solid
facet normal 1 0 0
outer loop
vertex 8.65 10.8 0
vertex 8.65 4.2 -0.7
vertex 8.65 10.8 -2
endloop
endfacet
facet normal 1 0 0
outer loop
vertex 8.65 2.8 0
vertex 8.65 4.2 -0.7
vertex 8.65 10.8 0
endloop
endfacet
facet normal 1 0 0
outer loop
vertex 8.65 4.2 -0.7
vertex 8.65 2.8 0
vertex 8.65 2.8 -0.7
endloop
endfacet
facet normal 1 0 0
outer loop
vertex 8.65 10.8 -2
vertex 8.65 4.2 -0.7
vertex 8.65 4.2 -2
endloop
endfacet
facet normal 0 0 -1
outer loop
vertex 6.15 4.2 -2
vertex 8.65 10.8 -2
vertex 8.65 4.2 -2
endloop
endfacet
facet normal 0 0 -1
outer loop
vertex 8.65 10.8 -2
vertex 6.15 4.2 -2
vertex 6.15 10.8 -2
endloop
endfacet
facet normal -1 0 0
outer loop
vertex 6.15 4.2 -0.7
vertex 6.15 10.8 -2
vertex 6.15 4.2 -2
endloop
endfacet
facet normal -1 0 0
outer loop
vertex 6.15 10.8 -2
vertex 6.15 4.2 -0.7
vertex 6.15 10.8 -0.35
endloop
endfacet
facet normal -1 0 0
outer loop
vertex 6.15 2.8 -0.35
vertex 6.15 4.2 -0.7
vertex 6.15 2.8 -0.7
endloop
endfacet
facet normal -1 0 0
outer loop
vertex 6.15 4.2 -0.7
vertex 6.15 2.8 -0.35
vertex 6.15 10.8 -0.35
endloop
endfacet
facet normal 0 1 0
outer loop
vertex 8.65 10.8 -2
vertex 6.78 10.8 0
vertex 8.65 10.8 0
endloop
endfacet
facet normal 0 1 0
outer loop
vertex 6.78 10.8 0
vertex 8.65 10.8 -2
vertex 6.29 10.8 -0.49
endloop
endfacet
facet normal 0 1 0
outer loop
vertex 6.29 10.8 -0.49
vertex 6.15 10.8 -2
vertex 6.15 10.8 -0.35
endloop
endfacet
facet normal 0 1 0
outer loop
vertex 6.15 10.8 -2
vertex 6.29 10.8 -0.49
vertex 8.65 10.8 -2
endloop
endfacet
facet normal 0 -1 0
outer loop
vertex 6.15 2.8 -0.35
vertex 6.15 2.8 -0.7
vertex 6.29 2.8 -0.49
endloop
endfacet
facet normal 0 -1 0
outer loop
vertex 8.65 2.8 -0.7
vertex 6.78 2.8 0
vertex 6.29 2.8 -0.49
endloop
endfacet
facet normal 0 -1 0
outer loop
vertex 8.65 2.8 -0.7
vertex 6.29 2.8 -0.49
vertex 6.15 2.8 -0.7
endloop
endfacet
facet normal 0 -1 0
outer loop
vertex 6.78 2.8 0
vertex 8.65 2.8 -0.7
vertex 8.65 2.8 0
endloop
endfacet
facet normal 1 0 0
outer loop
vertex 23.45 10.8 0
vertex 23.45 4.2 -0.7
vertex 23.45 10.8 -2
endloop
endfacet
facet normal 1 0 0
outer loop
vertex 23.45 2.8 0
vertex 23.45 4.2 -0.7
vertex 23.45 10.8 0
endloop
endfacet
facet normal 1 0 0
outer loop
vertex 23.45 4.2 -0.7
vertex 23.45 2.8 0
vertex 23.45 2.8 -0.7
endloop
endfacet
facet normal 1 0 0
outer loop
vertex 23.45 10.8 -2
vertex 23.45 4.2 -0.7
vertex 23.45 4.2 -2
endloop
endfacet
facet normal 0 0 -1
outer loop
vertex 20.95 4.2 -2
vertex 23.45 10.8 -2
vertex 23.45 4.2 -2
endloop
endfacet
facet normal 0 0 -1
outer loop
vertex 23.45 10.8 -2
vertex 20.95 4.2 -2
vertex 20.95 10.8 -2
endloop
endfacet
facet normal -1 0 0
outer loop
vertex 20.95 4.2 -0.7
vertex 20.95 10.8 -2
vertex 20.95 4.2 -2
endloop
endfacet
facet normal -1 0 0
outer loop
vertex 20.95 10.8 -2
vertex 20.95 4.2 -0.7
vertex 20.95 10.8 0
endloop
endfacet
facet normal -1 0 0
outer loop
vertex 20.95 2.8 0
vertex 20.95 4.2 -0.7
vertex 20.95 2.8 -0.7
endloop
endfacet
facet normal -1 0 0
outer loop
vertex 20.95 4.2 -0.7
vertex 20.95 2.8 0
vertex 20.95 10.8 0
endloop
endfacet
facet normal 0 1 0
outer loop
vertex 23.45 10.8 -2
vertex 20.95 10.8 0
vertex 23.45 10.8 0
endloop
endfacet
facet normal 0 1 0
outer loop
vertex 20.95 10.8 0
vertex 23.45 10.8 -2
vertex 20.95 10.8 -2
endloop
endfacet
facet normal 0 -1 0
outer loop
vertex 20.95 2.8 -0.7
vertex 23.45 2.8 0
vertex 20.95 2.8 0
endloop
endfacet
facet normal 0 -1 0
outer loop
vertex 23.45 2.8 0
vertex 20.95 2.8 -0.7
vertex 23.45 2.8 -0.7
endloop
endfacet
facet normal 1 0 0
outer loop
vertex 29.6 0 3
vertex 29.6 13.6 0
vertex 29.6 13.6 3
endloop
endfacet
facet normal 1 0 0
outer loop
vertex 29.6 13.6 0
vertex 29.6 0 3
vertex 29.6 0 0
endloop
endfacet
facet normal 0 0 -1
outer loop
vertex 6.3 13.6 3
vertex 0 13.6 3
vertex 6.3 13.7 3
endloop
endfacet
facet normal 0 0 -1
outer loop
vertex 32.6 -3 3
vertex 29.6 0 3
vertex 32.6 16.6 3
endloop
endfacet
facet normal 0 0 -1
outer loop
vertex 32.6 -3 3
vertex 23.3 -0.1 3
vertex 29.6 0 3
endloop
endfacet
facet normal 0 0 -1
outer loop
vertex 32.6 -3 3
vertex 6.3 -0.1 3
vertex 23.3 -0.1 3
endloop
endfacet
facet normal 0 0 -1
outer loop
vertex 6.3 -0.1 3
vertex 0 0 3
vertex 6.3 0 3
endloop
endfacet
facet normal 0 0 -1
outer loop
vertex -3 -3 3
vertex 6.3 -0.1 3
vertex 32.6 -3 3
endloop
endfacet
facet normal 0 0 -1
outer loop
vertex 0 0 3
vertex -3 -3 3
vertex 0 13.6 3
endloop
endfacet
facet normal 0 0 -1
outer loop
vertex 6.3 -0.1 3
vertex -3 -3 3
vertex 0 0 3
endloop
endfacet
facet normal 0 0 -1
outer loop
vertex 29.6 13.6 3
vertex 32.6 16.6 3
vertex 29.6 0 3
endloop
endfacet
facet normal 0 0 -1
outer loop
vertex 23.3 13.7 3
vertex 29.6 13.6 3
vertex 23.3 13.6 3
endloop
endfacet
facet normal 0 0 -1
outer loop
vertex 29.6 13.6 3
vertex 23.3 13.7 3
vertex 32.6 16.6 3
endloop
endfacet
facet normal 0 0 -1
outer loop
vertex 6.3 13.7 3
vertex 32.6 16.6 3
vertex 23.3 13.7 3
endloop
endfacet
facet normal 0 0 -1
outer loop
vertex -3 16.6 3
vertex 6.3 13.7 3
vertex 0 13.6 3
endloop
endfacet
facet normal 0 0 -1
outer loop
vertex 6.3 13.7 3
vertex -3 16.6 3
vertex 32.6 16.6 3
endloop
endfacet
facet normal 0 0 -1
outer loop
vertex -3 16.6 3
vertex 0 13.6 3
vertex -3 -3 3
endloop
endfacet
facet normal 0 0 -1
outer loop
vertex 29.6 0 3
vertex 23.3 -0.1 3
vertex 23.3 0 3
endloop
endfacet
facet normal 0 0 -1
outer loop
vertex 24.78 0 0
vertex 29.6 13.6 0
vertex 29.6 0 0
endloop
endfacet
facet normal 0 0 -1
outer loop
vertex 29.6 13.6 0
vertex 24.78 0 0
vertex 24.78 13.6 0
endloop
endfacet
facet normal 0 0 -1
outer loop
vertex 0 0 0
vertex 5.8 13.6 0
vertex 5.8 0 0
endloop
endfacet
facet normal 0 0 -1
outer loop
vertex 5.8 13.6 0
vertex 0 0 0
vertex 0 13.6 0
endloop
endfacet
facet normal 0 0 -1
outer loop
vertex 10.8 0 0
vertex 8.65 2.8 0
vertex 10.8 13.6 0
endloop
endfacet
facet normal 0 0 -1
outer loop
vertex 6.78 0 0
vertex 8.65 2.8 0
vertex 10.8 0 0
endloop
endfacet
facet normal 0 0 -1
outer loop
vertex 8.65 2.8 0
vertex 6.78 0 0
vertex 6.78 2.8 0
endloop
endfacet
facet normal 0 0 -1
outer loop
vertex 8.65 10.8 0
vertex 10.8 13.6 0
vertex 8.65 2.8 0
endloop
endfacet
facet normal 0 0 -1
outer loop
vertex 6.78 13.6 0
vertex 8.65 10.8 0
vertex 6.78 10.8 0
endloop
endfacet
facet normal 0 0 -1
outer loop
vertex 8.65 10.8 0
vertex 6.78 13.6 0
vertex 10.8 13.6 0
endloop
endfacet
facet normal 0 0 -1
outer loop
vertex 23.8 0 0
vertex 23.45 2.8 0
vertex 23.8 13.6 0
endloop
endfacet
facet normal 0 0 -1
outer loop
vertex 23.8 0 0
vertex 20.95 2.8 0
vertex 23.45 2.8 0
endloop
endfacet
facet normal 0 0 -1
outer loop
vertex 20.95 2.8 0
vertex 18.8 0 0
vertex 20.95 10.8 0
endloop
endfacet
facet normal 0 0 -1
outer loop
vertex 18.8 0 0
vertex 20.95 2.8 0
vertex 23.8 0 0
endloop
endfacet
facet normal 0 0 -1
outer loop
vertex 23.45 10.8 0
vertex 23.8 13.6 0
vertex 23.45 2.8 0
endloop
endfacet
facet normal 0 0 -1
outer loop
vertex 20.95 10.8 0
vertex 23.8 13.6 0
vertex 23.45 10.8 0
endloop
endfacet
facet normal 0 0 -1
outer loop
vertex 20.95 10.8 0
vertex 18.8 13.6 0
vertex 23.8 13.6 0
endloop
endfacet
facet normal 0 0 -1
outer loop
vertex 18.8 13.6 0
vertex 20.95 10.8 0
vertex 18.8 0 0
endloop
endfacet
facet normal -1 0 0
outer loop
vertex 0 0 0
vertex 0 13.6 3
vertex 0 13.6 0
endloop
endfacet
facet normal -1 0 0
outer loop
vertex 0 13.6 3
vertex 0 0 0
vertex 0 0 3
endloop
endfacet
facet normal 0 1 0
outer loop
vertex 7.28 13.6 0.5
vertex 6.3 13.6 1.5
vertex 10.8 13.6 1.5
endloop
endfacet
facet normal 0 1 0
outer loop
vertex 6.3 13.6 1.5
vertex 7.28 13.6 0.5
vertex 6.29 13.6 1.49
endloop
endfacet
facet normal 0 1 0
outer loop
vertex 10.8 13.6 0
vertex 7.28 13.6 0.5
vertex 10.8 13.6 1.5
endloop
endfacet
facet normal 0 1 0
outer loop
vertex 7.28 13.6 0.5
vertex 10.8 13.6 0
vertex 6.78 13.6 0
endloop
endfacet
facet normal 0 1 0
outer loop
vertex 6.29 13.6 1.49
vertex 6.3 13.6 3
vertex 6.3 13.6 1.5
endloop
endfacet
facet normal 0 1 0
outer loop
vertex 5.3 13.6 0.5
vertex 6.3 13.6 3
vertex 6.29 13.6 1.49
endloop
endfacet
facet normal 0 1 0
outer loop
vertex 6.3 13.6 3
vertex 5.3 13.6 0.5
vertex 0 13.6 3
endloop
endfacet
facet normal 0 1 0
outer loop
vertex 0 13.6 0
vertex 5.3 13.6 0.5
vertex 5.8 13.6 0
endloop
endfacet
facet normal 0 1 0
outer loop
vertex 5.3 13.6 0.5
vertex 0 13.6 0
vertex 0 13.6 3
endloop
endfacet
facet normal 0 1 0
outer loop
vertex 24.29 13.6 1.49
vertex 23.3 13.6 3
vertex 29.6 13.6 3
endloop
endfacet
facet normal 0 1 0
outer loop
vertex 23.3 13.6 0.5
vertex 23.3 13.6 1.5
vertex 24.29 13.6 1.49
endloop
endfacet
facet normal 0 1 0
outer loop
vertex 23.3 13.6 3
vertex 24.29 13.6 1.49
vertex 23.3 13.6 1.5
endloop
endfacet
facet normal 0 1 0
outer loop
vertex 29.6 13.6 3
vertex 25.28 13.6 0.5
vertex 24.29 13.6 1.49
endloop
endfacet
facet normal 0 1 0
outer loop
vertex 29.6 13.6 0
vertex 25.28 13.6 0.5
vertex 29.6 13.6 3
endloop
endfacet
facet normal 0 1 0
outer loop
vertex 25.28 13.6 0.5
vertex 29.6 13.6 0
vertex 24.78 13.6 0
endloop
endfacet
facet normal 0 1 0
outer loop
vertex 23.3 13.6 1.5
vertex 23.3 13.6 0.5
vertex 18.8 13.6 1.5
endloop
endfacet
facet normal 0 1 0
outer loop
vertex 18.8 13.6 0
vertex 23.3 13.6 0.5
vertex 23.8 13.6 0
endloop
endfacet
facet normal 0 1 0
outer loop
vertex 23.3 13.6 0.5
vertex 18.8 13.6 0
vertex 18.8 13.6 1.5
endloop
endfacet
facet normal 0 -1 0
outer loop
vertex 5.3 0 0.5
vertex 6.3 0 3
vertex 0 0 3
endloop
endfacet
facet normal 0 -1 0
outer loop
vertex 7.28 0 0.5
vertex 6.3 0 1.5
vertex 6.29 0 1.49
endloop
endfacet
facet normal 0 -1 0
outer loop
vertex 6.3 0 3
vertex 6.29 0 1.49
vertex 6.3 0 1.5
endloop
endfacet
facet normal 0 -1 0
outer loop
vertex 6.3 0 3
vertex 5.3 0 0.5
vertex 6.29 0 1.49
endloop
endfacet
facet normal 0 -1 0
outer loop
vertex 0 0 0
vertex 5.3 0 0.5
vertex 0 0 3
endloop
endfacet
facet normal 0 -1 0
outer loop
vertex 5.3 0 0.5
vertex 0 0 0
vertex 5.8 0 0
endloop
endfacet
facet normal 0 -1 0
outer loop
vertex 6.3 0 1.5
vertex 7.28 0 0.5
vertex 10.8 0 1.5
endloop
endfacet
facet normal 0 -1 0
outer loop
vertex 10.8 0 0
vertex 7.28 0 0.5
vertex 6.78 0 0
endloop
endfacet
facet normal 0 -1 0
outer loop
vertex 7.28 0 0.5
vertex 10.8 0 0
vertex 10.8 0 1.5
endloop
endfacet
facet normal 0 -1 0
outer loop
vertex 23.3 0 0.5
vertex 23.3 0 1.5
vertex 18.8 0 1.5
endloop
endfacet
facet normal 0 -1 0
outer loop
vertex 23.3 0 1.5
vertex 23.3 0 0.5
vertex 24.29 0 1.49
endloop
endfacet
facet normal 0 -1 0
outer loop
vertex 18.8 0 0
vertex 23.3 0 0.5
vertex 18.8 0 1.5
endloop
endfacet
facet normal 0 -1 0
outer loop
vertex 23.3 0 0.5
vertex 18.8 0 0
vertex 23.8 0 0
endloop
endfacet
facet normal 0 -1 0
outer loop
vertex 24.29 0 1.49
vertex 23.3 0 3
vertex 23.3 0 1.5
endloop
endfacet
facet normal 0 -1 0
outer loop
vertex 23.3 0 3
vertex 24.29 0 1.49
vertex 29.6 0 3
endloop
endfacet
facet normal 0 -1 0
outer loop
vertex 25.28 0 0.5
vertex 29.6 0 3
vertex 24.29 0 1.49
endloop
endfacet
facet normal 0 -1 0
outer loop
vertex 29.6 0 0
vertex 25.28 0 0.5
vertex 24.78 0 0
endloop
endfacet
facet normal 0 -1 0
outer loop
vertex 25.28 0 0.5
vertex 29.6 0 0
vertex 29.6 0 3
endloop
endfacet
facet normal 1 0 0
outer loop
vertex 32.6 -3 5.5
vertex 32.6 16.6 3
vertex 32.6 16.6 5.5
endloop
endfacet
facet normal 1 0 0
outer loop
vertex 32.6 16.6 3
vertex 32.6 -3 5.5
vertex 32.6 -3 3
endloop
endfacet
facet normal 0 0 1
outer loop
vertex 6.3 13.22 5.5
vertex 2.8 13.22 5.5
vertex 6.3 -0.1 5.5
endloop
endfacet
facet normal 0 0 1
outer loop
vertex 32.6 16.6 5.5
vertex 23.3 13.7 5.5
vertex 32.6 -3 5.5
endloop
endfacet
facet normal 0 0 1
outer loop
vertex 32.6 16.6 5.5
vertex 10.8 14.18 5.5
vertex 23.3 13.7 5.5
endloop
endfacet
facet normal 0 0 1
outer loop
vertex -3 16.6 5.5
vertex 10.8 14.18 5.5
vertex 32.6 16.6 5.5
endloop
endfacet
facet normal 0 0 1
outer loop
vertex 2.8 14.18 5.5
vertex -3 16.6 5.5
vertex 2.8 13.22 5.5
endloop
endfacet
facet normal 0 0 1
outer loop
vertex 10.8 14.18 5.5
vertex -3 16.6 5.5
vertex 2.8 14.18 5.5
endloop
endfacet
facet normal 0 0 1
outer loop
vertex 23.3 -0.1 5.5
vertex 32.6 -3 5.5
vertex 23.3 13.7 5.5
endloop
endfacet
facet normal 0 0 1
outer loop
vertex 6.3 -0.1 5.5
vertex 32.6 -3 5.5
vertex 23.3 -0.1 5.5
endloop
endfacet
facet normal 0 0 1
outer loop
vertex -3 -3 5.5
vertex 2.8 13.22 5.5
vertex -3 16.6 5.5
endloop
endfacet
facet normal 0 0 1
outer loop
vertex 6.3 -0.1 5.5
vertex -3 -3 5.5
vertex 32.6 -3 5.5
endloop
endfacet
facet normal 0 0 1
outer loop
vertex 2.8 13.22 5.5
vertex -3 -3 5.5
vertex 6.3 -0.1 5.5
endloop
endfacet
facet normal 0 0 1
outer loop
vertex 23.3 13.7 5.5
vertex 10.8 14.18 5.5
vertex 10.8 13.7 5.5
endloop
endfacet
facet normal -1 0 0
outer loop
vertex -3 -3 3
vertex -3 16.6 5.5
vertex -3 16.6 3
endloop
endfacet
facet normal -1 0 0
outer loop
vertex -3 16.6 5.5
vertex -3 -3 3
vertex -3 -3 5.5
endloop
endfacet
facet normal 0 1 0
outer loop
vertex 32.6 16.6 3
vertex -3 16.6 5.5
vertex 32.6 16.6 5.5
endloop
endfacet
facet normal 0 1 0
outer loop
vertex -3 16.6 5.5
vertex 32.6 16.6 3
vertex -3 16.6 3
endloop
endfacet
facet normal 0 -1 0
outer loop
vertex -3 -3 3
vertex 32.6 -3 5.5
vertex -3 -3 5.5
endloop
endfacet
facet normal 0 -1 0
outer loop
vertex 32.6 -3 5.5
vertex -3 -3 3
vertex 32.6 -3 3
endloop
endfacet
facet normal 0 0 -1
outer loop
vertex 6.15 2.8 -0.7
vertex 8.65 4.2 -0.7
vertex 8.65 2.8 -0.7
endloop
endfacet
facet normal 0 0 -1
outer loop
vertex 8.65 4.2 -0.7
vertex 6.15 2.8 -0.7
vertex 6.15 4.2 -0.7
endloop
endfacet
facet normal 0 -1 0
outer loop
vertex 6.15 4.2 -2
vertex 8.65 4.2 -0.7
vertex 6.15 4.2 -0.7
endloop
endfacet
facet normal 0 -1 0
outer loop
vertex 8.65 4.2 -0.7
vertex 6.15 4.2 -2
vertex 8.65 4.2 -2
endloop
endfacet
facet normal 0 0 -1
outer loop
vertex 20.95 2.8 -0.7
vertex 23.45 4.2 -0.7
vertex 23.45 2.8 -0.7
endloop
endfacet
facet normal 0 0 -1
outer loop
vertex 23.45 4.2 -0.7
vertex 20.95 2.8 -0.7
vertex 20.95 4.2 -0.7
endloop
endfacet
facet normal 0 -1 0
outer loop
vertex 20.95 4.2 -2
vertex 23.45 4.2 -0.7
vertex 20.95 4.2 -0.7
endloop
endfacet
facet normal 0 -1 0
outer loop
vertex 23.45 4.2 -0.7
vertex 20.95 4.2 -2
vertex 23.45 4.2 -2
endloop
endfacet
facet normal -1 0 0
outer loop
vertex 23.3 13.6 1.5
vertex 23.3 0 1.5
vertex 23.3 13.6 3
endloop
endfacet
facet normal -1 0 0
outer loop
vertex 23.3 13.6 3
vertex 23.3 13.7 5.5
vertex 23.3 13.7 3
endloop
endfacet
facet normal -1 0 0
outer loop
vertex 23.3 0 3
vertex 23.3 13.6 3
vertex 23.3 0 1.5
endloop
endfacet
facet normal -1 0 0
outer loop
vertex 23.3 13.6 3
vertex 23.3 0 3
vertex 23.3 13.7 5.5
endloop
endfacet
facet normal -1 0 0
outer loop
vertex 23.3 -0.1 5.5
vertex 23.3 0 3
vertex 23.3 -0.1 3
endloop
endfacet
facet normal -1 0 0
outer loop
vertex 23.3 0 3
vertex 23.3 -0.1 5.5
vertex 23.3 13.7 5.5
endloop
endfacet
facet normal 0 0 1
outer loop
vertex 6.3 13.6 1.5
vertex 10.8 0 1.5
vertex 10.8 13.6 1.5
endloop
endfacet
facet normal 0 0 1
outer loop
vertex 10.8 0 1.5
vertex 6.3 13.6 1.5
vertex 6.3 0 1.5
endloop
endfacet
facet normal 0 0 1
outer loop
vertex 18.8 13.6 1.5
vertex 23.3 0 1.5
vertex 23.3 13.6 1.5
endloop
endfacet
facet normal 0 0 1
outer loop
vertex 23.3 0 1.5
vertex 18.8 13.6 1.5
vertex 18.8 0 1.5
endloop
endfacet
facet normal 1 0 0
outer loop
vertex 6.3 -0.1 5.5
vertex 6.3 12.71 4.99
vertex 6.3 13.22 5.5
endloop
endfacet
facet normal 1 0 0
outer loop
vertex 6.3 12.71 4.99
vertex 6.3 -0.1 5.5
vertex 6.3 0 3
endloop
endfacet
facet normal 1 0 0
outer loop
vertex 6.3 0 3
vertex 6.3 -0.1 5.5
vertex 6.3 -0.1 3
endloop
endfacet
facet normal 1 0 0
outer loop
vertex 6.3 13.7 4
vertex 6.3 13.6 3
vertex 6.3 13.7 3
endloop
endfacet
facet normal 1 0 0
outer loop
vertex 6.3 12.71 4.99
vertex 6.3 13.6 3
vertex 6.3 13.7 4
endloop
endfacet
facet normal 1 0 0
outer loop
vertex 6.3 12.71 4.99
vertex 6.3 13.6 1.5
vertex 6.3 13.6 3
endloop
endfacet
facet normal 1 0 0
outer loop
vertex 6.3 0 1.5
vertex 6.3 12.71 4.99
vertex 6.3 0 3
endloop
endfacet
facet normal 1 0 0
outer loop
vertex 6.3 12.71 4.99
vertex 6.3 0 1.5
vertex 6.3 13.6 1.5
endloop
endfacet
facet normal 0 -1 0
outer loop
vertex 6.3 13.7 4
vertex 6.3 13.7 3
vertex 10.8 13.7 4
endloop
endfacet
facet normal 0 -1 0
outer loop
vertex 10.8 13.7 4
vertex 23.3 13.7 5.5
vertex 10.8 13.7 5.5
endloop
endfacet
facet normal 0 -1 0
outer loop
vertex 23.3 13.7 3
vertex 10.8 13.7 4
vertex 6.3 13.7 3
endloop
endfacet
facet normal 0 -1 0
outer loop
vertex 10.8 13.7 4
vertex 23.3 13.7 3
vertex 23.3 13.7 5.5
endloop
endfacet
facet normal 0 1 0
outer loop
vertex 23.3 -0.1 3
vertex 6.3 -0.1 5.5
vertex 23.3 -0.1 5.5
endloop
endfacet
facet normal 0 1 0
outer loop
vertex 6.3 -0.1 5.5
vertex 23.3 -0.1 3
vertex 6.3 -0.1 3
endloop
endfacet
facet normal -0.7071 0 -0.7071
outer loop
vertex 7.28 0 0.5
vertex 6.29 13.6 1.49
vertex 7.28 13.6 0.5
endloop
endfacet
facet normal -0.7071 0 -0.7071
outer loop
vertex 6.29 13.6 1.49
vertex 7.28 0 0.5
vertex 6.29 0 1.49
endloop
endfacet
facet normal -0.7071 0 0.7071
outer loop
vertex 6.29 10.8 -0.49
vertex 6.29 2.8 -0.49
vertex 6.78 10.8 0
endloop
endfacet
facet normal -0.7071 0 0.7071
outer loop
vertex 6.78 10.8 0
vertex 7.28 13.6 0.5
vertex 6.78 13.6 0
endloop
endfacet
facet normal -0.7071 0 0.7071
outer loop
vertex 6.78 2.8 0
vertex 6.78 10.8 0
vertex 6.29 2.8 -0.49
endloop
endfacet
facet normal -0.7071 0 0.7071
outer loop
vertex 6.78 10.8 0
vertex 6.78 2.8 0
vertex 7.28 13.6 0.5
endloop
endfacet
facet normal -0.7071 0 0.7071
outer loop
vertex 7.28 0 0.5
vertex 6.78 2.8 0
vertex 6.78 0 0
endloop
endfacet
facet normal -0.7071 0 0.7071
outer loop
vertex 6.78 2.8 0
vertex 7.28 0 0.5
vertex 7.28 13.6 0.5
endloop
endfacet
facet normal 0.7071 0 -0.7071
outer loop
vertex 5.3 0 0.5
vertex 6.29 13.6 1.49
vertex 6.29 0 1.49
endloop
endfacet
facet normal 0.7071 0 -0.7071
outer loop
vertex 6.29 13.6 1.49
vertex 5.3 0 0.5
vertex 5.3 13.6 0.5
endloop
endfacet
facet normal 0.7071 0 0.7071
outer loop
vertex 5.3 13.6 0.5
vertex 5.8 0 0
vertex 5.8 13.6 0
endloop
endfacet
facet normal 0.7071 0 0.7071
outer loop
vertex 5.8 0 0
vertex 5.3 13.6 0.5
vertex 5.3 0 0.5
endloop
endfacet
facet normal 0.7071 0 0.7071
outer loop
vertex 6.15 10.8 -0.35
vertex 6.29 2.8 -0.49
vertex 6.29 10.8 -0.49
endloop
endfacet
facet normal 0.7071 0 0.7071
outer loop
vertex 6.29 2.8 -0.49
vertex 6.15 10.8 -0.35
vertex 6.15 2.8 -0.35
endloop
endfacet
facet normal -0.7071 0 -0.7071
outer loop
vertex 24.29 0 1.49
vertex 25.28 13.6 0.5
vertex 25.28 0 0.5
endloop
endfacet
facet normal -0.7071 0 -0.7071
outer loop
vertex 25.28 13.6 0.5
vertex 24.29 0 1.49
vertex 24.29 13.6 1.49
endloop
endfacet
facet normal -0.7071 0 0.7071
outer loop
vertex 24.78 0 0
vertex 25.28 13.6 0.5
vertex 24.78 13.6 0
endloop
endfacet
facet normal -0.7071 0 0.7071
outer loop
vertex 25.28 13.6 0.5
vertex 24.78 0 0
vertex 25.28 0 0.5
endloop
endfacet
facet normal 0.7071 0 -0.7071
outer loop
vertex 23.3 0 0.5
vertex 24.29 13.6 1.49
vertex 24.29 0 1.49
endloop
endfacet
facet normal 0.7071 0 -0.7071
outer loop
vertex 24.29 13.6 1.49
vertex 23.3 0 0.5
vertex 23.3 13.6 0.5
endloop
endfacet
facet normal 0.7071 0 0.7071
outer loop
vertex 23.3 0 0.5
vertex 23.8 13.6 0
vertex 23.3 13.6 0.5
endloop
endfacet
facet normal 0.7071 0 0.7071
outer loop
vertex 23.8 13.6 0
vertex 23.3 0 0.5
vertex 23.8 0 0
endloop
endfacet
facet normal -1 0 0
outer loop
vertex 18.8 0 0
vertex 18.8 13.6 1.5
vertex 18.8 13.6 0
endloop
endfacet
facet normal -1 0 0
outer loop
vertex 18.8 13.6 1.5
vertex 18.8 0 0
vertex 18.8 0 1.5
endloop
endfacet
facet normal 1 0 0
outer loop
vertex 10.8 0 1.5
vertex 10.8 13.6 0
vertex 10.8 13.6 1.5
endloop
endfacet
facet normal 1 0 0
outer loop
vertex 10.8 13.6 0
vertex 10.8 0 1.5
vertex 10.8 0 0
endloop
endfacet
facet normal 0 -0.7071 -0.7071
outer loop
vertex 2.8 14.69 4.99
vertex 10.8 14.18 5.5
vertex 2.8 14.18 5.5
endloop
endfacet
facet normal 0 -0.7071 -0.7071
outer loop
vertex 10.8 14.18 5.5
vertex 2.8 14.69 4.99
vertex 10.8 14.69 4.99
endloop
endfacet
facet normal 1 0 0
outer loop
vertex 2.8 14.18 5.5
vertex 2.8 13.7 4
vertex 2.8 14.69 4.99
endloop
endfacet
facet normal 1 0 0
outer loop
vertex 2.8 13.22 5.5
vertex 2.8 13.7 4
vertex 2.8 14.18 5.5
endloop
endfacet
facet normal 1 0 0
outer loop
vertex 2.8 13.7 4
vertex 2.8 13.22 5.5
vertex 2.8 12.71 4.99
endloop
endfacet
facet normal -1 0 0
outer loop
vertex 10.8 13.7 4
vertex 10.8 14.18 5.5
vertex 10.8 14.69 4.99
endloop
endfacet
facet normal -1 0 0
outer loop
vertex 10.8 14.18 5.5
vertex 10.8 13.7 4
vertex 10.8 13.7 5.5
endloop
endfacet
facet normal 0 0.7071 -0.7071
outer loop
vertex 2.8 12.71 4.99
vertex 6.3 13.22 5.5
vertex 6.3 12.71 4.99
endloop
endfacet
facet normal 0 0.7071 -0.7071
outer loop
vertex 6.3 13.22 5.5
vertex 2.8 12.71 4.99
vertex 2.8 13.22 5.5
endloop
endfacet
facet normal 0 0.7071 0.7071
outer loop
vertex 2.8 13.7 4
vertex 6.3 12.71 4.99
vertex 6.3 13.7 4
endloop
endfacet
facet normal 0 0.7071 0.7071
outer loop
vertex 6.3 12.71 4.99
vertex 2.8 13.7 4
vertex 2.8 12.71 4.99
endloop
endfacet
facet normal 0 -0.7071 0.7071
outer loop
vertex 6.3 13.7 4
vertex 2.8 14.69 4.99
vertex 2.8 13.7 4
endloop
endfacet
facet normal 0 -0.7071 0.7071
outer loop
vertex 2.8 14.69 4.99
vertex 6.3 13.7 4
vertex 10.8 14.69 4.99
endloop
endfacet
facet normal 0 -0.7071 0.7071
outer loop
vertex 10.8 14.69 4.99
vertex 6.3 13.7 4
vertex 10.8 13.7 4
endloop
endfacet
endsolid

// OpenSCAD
// ============================================================
//  MSE-6 — Deck Cable Penetration Plate
//  Snap-in insert for the cable hole in the internal deck (Z=42).
//  Protects CSI ribbon and HC-SR04 wires from deck edge damage.
//
//  The deck hole needs to be cut/drilled: ~30 × 14mm rectangle
//  centred at ~X=104, Y=91 (middle of the 156×80mm deck area).
//
//  Features:
//    – Press-fit body fills the deck hole
//    – Wide flange on top face of deck (stops it falling through)
//    – Two slots: wide (CSI ribbon 16mm) + narrow (4-wire HC-SR04)
//    – Chamfered slot edges to prevent ribbon chafing
//    – Snap tabs on underside
// ============================================================
$fn = 32;

// Deck hole (cut this in the shell deck)
hole_w   = 30.0;
hole_d   = 14.0;
deck_t   =  3.0;   // deck thickness (estimated)

// Insert body
body_w   = hole_w - 0.4;
body_d   = hole_d - 0.4;
body_h   = deck_t;

// Top flange
flange_ow =  3.0;
flange_t  =  2.5;

// CSI ribbon slot
csi_w    = 17.0;
csi_h    =  1.5;   // ribbon thickness + 0.5mm

// GPIO wire slot  
gpio_w   =  8.0;
gpio_h   =  4.0;

// Chamfer on slot edges
cham     =  1.0;

// Snap tab (underside)
tab_l    =  8.0;
tab_w    =  2.5;
tab_h    =  2.0;

module cable_plate() {
    difference() {
        union() {
            // Press-fit body
            cube([body_w, body_d, body_h]);
            // Top flange
            translate([-flange_ow, -flange_ow, body_h])
                cube([body_w + flange_ow*2, body_d + flange_ow*2, flange_t]);
            // Snap tabs on underside
            for (tx = [body_w*0.25, body_w*0.75])
                translate([tx - tab_w/2, body_d/2 - tab_l/2, -tab_h])
                    cube([tab_w, tab_l, tab_h + 0.1]);
        }

        // CSI ribbon slot (wide, thin) — centred
        translate([body_w/2 - csi_w/2, -0.1, body_h - csi_h])
            cube([csi_w, body_d + 0.2, csi_h + flange_t + 0.1]);

        // Chamfer ribbon slot edges
        translate([body_w/2 - csi_w/2 - cham, -0.1, body_h - csi_h - cham])
            rotate([0, 45, 0])
                cube([cham*1.4, body_d + 0.2, cham*1.4]);
        translate([body_w/2 + csi_w/2, -0.1, body_h - csi_h - cham])
            rotate([0, 45, 0])
                cube([cham*1.4, body_d + 0.2, cham*1.4]);

        // GPIO wire slot (narrower, taller)
        translate([body_w/2 - gpio_w/2, -0.1, -0.1])
            cube([gpio_w, body_d + 0.2, gpio_h + 0.1]);

        // Chamfer gpio slot
        translate([body_w/2 - gpio_w/2, body_d + 0.1, gpio_h])
            rotate([0, 0, 180]) rotate([45, 0, 0])
                cube([gpio_w, cham*1.4, cham*1.4]);

        // Snap tab bevel (makes them flex)
        for (tx = [body_w*0.25, body_w*0.75])
            translate([tx - tab_w/2 - 0.1, body_d/2 - tab_l/2 - 0.1, -tab_h - 0.1])
                rotate([0, 0, 0])
                    cube([tab_w + 0.2, 1.5, tab_h * 0.7]);
    }
}

cable_plate();
